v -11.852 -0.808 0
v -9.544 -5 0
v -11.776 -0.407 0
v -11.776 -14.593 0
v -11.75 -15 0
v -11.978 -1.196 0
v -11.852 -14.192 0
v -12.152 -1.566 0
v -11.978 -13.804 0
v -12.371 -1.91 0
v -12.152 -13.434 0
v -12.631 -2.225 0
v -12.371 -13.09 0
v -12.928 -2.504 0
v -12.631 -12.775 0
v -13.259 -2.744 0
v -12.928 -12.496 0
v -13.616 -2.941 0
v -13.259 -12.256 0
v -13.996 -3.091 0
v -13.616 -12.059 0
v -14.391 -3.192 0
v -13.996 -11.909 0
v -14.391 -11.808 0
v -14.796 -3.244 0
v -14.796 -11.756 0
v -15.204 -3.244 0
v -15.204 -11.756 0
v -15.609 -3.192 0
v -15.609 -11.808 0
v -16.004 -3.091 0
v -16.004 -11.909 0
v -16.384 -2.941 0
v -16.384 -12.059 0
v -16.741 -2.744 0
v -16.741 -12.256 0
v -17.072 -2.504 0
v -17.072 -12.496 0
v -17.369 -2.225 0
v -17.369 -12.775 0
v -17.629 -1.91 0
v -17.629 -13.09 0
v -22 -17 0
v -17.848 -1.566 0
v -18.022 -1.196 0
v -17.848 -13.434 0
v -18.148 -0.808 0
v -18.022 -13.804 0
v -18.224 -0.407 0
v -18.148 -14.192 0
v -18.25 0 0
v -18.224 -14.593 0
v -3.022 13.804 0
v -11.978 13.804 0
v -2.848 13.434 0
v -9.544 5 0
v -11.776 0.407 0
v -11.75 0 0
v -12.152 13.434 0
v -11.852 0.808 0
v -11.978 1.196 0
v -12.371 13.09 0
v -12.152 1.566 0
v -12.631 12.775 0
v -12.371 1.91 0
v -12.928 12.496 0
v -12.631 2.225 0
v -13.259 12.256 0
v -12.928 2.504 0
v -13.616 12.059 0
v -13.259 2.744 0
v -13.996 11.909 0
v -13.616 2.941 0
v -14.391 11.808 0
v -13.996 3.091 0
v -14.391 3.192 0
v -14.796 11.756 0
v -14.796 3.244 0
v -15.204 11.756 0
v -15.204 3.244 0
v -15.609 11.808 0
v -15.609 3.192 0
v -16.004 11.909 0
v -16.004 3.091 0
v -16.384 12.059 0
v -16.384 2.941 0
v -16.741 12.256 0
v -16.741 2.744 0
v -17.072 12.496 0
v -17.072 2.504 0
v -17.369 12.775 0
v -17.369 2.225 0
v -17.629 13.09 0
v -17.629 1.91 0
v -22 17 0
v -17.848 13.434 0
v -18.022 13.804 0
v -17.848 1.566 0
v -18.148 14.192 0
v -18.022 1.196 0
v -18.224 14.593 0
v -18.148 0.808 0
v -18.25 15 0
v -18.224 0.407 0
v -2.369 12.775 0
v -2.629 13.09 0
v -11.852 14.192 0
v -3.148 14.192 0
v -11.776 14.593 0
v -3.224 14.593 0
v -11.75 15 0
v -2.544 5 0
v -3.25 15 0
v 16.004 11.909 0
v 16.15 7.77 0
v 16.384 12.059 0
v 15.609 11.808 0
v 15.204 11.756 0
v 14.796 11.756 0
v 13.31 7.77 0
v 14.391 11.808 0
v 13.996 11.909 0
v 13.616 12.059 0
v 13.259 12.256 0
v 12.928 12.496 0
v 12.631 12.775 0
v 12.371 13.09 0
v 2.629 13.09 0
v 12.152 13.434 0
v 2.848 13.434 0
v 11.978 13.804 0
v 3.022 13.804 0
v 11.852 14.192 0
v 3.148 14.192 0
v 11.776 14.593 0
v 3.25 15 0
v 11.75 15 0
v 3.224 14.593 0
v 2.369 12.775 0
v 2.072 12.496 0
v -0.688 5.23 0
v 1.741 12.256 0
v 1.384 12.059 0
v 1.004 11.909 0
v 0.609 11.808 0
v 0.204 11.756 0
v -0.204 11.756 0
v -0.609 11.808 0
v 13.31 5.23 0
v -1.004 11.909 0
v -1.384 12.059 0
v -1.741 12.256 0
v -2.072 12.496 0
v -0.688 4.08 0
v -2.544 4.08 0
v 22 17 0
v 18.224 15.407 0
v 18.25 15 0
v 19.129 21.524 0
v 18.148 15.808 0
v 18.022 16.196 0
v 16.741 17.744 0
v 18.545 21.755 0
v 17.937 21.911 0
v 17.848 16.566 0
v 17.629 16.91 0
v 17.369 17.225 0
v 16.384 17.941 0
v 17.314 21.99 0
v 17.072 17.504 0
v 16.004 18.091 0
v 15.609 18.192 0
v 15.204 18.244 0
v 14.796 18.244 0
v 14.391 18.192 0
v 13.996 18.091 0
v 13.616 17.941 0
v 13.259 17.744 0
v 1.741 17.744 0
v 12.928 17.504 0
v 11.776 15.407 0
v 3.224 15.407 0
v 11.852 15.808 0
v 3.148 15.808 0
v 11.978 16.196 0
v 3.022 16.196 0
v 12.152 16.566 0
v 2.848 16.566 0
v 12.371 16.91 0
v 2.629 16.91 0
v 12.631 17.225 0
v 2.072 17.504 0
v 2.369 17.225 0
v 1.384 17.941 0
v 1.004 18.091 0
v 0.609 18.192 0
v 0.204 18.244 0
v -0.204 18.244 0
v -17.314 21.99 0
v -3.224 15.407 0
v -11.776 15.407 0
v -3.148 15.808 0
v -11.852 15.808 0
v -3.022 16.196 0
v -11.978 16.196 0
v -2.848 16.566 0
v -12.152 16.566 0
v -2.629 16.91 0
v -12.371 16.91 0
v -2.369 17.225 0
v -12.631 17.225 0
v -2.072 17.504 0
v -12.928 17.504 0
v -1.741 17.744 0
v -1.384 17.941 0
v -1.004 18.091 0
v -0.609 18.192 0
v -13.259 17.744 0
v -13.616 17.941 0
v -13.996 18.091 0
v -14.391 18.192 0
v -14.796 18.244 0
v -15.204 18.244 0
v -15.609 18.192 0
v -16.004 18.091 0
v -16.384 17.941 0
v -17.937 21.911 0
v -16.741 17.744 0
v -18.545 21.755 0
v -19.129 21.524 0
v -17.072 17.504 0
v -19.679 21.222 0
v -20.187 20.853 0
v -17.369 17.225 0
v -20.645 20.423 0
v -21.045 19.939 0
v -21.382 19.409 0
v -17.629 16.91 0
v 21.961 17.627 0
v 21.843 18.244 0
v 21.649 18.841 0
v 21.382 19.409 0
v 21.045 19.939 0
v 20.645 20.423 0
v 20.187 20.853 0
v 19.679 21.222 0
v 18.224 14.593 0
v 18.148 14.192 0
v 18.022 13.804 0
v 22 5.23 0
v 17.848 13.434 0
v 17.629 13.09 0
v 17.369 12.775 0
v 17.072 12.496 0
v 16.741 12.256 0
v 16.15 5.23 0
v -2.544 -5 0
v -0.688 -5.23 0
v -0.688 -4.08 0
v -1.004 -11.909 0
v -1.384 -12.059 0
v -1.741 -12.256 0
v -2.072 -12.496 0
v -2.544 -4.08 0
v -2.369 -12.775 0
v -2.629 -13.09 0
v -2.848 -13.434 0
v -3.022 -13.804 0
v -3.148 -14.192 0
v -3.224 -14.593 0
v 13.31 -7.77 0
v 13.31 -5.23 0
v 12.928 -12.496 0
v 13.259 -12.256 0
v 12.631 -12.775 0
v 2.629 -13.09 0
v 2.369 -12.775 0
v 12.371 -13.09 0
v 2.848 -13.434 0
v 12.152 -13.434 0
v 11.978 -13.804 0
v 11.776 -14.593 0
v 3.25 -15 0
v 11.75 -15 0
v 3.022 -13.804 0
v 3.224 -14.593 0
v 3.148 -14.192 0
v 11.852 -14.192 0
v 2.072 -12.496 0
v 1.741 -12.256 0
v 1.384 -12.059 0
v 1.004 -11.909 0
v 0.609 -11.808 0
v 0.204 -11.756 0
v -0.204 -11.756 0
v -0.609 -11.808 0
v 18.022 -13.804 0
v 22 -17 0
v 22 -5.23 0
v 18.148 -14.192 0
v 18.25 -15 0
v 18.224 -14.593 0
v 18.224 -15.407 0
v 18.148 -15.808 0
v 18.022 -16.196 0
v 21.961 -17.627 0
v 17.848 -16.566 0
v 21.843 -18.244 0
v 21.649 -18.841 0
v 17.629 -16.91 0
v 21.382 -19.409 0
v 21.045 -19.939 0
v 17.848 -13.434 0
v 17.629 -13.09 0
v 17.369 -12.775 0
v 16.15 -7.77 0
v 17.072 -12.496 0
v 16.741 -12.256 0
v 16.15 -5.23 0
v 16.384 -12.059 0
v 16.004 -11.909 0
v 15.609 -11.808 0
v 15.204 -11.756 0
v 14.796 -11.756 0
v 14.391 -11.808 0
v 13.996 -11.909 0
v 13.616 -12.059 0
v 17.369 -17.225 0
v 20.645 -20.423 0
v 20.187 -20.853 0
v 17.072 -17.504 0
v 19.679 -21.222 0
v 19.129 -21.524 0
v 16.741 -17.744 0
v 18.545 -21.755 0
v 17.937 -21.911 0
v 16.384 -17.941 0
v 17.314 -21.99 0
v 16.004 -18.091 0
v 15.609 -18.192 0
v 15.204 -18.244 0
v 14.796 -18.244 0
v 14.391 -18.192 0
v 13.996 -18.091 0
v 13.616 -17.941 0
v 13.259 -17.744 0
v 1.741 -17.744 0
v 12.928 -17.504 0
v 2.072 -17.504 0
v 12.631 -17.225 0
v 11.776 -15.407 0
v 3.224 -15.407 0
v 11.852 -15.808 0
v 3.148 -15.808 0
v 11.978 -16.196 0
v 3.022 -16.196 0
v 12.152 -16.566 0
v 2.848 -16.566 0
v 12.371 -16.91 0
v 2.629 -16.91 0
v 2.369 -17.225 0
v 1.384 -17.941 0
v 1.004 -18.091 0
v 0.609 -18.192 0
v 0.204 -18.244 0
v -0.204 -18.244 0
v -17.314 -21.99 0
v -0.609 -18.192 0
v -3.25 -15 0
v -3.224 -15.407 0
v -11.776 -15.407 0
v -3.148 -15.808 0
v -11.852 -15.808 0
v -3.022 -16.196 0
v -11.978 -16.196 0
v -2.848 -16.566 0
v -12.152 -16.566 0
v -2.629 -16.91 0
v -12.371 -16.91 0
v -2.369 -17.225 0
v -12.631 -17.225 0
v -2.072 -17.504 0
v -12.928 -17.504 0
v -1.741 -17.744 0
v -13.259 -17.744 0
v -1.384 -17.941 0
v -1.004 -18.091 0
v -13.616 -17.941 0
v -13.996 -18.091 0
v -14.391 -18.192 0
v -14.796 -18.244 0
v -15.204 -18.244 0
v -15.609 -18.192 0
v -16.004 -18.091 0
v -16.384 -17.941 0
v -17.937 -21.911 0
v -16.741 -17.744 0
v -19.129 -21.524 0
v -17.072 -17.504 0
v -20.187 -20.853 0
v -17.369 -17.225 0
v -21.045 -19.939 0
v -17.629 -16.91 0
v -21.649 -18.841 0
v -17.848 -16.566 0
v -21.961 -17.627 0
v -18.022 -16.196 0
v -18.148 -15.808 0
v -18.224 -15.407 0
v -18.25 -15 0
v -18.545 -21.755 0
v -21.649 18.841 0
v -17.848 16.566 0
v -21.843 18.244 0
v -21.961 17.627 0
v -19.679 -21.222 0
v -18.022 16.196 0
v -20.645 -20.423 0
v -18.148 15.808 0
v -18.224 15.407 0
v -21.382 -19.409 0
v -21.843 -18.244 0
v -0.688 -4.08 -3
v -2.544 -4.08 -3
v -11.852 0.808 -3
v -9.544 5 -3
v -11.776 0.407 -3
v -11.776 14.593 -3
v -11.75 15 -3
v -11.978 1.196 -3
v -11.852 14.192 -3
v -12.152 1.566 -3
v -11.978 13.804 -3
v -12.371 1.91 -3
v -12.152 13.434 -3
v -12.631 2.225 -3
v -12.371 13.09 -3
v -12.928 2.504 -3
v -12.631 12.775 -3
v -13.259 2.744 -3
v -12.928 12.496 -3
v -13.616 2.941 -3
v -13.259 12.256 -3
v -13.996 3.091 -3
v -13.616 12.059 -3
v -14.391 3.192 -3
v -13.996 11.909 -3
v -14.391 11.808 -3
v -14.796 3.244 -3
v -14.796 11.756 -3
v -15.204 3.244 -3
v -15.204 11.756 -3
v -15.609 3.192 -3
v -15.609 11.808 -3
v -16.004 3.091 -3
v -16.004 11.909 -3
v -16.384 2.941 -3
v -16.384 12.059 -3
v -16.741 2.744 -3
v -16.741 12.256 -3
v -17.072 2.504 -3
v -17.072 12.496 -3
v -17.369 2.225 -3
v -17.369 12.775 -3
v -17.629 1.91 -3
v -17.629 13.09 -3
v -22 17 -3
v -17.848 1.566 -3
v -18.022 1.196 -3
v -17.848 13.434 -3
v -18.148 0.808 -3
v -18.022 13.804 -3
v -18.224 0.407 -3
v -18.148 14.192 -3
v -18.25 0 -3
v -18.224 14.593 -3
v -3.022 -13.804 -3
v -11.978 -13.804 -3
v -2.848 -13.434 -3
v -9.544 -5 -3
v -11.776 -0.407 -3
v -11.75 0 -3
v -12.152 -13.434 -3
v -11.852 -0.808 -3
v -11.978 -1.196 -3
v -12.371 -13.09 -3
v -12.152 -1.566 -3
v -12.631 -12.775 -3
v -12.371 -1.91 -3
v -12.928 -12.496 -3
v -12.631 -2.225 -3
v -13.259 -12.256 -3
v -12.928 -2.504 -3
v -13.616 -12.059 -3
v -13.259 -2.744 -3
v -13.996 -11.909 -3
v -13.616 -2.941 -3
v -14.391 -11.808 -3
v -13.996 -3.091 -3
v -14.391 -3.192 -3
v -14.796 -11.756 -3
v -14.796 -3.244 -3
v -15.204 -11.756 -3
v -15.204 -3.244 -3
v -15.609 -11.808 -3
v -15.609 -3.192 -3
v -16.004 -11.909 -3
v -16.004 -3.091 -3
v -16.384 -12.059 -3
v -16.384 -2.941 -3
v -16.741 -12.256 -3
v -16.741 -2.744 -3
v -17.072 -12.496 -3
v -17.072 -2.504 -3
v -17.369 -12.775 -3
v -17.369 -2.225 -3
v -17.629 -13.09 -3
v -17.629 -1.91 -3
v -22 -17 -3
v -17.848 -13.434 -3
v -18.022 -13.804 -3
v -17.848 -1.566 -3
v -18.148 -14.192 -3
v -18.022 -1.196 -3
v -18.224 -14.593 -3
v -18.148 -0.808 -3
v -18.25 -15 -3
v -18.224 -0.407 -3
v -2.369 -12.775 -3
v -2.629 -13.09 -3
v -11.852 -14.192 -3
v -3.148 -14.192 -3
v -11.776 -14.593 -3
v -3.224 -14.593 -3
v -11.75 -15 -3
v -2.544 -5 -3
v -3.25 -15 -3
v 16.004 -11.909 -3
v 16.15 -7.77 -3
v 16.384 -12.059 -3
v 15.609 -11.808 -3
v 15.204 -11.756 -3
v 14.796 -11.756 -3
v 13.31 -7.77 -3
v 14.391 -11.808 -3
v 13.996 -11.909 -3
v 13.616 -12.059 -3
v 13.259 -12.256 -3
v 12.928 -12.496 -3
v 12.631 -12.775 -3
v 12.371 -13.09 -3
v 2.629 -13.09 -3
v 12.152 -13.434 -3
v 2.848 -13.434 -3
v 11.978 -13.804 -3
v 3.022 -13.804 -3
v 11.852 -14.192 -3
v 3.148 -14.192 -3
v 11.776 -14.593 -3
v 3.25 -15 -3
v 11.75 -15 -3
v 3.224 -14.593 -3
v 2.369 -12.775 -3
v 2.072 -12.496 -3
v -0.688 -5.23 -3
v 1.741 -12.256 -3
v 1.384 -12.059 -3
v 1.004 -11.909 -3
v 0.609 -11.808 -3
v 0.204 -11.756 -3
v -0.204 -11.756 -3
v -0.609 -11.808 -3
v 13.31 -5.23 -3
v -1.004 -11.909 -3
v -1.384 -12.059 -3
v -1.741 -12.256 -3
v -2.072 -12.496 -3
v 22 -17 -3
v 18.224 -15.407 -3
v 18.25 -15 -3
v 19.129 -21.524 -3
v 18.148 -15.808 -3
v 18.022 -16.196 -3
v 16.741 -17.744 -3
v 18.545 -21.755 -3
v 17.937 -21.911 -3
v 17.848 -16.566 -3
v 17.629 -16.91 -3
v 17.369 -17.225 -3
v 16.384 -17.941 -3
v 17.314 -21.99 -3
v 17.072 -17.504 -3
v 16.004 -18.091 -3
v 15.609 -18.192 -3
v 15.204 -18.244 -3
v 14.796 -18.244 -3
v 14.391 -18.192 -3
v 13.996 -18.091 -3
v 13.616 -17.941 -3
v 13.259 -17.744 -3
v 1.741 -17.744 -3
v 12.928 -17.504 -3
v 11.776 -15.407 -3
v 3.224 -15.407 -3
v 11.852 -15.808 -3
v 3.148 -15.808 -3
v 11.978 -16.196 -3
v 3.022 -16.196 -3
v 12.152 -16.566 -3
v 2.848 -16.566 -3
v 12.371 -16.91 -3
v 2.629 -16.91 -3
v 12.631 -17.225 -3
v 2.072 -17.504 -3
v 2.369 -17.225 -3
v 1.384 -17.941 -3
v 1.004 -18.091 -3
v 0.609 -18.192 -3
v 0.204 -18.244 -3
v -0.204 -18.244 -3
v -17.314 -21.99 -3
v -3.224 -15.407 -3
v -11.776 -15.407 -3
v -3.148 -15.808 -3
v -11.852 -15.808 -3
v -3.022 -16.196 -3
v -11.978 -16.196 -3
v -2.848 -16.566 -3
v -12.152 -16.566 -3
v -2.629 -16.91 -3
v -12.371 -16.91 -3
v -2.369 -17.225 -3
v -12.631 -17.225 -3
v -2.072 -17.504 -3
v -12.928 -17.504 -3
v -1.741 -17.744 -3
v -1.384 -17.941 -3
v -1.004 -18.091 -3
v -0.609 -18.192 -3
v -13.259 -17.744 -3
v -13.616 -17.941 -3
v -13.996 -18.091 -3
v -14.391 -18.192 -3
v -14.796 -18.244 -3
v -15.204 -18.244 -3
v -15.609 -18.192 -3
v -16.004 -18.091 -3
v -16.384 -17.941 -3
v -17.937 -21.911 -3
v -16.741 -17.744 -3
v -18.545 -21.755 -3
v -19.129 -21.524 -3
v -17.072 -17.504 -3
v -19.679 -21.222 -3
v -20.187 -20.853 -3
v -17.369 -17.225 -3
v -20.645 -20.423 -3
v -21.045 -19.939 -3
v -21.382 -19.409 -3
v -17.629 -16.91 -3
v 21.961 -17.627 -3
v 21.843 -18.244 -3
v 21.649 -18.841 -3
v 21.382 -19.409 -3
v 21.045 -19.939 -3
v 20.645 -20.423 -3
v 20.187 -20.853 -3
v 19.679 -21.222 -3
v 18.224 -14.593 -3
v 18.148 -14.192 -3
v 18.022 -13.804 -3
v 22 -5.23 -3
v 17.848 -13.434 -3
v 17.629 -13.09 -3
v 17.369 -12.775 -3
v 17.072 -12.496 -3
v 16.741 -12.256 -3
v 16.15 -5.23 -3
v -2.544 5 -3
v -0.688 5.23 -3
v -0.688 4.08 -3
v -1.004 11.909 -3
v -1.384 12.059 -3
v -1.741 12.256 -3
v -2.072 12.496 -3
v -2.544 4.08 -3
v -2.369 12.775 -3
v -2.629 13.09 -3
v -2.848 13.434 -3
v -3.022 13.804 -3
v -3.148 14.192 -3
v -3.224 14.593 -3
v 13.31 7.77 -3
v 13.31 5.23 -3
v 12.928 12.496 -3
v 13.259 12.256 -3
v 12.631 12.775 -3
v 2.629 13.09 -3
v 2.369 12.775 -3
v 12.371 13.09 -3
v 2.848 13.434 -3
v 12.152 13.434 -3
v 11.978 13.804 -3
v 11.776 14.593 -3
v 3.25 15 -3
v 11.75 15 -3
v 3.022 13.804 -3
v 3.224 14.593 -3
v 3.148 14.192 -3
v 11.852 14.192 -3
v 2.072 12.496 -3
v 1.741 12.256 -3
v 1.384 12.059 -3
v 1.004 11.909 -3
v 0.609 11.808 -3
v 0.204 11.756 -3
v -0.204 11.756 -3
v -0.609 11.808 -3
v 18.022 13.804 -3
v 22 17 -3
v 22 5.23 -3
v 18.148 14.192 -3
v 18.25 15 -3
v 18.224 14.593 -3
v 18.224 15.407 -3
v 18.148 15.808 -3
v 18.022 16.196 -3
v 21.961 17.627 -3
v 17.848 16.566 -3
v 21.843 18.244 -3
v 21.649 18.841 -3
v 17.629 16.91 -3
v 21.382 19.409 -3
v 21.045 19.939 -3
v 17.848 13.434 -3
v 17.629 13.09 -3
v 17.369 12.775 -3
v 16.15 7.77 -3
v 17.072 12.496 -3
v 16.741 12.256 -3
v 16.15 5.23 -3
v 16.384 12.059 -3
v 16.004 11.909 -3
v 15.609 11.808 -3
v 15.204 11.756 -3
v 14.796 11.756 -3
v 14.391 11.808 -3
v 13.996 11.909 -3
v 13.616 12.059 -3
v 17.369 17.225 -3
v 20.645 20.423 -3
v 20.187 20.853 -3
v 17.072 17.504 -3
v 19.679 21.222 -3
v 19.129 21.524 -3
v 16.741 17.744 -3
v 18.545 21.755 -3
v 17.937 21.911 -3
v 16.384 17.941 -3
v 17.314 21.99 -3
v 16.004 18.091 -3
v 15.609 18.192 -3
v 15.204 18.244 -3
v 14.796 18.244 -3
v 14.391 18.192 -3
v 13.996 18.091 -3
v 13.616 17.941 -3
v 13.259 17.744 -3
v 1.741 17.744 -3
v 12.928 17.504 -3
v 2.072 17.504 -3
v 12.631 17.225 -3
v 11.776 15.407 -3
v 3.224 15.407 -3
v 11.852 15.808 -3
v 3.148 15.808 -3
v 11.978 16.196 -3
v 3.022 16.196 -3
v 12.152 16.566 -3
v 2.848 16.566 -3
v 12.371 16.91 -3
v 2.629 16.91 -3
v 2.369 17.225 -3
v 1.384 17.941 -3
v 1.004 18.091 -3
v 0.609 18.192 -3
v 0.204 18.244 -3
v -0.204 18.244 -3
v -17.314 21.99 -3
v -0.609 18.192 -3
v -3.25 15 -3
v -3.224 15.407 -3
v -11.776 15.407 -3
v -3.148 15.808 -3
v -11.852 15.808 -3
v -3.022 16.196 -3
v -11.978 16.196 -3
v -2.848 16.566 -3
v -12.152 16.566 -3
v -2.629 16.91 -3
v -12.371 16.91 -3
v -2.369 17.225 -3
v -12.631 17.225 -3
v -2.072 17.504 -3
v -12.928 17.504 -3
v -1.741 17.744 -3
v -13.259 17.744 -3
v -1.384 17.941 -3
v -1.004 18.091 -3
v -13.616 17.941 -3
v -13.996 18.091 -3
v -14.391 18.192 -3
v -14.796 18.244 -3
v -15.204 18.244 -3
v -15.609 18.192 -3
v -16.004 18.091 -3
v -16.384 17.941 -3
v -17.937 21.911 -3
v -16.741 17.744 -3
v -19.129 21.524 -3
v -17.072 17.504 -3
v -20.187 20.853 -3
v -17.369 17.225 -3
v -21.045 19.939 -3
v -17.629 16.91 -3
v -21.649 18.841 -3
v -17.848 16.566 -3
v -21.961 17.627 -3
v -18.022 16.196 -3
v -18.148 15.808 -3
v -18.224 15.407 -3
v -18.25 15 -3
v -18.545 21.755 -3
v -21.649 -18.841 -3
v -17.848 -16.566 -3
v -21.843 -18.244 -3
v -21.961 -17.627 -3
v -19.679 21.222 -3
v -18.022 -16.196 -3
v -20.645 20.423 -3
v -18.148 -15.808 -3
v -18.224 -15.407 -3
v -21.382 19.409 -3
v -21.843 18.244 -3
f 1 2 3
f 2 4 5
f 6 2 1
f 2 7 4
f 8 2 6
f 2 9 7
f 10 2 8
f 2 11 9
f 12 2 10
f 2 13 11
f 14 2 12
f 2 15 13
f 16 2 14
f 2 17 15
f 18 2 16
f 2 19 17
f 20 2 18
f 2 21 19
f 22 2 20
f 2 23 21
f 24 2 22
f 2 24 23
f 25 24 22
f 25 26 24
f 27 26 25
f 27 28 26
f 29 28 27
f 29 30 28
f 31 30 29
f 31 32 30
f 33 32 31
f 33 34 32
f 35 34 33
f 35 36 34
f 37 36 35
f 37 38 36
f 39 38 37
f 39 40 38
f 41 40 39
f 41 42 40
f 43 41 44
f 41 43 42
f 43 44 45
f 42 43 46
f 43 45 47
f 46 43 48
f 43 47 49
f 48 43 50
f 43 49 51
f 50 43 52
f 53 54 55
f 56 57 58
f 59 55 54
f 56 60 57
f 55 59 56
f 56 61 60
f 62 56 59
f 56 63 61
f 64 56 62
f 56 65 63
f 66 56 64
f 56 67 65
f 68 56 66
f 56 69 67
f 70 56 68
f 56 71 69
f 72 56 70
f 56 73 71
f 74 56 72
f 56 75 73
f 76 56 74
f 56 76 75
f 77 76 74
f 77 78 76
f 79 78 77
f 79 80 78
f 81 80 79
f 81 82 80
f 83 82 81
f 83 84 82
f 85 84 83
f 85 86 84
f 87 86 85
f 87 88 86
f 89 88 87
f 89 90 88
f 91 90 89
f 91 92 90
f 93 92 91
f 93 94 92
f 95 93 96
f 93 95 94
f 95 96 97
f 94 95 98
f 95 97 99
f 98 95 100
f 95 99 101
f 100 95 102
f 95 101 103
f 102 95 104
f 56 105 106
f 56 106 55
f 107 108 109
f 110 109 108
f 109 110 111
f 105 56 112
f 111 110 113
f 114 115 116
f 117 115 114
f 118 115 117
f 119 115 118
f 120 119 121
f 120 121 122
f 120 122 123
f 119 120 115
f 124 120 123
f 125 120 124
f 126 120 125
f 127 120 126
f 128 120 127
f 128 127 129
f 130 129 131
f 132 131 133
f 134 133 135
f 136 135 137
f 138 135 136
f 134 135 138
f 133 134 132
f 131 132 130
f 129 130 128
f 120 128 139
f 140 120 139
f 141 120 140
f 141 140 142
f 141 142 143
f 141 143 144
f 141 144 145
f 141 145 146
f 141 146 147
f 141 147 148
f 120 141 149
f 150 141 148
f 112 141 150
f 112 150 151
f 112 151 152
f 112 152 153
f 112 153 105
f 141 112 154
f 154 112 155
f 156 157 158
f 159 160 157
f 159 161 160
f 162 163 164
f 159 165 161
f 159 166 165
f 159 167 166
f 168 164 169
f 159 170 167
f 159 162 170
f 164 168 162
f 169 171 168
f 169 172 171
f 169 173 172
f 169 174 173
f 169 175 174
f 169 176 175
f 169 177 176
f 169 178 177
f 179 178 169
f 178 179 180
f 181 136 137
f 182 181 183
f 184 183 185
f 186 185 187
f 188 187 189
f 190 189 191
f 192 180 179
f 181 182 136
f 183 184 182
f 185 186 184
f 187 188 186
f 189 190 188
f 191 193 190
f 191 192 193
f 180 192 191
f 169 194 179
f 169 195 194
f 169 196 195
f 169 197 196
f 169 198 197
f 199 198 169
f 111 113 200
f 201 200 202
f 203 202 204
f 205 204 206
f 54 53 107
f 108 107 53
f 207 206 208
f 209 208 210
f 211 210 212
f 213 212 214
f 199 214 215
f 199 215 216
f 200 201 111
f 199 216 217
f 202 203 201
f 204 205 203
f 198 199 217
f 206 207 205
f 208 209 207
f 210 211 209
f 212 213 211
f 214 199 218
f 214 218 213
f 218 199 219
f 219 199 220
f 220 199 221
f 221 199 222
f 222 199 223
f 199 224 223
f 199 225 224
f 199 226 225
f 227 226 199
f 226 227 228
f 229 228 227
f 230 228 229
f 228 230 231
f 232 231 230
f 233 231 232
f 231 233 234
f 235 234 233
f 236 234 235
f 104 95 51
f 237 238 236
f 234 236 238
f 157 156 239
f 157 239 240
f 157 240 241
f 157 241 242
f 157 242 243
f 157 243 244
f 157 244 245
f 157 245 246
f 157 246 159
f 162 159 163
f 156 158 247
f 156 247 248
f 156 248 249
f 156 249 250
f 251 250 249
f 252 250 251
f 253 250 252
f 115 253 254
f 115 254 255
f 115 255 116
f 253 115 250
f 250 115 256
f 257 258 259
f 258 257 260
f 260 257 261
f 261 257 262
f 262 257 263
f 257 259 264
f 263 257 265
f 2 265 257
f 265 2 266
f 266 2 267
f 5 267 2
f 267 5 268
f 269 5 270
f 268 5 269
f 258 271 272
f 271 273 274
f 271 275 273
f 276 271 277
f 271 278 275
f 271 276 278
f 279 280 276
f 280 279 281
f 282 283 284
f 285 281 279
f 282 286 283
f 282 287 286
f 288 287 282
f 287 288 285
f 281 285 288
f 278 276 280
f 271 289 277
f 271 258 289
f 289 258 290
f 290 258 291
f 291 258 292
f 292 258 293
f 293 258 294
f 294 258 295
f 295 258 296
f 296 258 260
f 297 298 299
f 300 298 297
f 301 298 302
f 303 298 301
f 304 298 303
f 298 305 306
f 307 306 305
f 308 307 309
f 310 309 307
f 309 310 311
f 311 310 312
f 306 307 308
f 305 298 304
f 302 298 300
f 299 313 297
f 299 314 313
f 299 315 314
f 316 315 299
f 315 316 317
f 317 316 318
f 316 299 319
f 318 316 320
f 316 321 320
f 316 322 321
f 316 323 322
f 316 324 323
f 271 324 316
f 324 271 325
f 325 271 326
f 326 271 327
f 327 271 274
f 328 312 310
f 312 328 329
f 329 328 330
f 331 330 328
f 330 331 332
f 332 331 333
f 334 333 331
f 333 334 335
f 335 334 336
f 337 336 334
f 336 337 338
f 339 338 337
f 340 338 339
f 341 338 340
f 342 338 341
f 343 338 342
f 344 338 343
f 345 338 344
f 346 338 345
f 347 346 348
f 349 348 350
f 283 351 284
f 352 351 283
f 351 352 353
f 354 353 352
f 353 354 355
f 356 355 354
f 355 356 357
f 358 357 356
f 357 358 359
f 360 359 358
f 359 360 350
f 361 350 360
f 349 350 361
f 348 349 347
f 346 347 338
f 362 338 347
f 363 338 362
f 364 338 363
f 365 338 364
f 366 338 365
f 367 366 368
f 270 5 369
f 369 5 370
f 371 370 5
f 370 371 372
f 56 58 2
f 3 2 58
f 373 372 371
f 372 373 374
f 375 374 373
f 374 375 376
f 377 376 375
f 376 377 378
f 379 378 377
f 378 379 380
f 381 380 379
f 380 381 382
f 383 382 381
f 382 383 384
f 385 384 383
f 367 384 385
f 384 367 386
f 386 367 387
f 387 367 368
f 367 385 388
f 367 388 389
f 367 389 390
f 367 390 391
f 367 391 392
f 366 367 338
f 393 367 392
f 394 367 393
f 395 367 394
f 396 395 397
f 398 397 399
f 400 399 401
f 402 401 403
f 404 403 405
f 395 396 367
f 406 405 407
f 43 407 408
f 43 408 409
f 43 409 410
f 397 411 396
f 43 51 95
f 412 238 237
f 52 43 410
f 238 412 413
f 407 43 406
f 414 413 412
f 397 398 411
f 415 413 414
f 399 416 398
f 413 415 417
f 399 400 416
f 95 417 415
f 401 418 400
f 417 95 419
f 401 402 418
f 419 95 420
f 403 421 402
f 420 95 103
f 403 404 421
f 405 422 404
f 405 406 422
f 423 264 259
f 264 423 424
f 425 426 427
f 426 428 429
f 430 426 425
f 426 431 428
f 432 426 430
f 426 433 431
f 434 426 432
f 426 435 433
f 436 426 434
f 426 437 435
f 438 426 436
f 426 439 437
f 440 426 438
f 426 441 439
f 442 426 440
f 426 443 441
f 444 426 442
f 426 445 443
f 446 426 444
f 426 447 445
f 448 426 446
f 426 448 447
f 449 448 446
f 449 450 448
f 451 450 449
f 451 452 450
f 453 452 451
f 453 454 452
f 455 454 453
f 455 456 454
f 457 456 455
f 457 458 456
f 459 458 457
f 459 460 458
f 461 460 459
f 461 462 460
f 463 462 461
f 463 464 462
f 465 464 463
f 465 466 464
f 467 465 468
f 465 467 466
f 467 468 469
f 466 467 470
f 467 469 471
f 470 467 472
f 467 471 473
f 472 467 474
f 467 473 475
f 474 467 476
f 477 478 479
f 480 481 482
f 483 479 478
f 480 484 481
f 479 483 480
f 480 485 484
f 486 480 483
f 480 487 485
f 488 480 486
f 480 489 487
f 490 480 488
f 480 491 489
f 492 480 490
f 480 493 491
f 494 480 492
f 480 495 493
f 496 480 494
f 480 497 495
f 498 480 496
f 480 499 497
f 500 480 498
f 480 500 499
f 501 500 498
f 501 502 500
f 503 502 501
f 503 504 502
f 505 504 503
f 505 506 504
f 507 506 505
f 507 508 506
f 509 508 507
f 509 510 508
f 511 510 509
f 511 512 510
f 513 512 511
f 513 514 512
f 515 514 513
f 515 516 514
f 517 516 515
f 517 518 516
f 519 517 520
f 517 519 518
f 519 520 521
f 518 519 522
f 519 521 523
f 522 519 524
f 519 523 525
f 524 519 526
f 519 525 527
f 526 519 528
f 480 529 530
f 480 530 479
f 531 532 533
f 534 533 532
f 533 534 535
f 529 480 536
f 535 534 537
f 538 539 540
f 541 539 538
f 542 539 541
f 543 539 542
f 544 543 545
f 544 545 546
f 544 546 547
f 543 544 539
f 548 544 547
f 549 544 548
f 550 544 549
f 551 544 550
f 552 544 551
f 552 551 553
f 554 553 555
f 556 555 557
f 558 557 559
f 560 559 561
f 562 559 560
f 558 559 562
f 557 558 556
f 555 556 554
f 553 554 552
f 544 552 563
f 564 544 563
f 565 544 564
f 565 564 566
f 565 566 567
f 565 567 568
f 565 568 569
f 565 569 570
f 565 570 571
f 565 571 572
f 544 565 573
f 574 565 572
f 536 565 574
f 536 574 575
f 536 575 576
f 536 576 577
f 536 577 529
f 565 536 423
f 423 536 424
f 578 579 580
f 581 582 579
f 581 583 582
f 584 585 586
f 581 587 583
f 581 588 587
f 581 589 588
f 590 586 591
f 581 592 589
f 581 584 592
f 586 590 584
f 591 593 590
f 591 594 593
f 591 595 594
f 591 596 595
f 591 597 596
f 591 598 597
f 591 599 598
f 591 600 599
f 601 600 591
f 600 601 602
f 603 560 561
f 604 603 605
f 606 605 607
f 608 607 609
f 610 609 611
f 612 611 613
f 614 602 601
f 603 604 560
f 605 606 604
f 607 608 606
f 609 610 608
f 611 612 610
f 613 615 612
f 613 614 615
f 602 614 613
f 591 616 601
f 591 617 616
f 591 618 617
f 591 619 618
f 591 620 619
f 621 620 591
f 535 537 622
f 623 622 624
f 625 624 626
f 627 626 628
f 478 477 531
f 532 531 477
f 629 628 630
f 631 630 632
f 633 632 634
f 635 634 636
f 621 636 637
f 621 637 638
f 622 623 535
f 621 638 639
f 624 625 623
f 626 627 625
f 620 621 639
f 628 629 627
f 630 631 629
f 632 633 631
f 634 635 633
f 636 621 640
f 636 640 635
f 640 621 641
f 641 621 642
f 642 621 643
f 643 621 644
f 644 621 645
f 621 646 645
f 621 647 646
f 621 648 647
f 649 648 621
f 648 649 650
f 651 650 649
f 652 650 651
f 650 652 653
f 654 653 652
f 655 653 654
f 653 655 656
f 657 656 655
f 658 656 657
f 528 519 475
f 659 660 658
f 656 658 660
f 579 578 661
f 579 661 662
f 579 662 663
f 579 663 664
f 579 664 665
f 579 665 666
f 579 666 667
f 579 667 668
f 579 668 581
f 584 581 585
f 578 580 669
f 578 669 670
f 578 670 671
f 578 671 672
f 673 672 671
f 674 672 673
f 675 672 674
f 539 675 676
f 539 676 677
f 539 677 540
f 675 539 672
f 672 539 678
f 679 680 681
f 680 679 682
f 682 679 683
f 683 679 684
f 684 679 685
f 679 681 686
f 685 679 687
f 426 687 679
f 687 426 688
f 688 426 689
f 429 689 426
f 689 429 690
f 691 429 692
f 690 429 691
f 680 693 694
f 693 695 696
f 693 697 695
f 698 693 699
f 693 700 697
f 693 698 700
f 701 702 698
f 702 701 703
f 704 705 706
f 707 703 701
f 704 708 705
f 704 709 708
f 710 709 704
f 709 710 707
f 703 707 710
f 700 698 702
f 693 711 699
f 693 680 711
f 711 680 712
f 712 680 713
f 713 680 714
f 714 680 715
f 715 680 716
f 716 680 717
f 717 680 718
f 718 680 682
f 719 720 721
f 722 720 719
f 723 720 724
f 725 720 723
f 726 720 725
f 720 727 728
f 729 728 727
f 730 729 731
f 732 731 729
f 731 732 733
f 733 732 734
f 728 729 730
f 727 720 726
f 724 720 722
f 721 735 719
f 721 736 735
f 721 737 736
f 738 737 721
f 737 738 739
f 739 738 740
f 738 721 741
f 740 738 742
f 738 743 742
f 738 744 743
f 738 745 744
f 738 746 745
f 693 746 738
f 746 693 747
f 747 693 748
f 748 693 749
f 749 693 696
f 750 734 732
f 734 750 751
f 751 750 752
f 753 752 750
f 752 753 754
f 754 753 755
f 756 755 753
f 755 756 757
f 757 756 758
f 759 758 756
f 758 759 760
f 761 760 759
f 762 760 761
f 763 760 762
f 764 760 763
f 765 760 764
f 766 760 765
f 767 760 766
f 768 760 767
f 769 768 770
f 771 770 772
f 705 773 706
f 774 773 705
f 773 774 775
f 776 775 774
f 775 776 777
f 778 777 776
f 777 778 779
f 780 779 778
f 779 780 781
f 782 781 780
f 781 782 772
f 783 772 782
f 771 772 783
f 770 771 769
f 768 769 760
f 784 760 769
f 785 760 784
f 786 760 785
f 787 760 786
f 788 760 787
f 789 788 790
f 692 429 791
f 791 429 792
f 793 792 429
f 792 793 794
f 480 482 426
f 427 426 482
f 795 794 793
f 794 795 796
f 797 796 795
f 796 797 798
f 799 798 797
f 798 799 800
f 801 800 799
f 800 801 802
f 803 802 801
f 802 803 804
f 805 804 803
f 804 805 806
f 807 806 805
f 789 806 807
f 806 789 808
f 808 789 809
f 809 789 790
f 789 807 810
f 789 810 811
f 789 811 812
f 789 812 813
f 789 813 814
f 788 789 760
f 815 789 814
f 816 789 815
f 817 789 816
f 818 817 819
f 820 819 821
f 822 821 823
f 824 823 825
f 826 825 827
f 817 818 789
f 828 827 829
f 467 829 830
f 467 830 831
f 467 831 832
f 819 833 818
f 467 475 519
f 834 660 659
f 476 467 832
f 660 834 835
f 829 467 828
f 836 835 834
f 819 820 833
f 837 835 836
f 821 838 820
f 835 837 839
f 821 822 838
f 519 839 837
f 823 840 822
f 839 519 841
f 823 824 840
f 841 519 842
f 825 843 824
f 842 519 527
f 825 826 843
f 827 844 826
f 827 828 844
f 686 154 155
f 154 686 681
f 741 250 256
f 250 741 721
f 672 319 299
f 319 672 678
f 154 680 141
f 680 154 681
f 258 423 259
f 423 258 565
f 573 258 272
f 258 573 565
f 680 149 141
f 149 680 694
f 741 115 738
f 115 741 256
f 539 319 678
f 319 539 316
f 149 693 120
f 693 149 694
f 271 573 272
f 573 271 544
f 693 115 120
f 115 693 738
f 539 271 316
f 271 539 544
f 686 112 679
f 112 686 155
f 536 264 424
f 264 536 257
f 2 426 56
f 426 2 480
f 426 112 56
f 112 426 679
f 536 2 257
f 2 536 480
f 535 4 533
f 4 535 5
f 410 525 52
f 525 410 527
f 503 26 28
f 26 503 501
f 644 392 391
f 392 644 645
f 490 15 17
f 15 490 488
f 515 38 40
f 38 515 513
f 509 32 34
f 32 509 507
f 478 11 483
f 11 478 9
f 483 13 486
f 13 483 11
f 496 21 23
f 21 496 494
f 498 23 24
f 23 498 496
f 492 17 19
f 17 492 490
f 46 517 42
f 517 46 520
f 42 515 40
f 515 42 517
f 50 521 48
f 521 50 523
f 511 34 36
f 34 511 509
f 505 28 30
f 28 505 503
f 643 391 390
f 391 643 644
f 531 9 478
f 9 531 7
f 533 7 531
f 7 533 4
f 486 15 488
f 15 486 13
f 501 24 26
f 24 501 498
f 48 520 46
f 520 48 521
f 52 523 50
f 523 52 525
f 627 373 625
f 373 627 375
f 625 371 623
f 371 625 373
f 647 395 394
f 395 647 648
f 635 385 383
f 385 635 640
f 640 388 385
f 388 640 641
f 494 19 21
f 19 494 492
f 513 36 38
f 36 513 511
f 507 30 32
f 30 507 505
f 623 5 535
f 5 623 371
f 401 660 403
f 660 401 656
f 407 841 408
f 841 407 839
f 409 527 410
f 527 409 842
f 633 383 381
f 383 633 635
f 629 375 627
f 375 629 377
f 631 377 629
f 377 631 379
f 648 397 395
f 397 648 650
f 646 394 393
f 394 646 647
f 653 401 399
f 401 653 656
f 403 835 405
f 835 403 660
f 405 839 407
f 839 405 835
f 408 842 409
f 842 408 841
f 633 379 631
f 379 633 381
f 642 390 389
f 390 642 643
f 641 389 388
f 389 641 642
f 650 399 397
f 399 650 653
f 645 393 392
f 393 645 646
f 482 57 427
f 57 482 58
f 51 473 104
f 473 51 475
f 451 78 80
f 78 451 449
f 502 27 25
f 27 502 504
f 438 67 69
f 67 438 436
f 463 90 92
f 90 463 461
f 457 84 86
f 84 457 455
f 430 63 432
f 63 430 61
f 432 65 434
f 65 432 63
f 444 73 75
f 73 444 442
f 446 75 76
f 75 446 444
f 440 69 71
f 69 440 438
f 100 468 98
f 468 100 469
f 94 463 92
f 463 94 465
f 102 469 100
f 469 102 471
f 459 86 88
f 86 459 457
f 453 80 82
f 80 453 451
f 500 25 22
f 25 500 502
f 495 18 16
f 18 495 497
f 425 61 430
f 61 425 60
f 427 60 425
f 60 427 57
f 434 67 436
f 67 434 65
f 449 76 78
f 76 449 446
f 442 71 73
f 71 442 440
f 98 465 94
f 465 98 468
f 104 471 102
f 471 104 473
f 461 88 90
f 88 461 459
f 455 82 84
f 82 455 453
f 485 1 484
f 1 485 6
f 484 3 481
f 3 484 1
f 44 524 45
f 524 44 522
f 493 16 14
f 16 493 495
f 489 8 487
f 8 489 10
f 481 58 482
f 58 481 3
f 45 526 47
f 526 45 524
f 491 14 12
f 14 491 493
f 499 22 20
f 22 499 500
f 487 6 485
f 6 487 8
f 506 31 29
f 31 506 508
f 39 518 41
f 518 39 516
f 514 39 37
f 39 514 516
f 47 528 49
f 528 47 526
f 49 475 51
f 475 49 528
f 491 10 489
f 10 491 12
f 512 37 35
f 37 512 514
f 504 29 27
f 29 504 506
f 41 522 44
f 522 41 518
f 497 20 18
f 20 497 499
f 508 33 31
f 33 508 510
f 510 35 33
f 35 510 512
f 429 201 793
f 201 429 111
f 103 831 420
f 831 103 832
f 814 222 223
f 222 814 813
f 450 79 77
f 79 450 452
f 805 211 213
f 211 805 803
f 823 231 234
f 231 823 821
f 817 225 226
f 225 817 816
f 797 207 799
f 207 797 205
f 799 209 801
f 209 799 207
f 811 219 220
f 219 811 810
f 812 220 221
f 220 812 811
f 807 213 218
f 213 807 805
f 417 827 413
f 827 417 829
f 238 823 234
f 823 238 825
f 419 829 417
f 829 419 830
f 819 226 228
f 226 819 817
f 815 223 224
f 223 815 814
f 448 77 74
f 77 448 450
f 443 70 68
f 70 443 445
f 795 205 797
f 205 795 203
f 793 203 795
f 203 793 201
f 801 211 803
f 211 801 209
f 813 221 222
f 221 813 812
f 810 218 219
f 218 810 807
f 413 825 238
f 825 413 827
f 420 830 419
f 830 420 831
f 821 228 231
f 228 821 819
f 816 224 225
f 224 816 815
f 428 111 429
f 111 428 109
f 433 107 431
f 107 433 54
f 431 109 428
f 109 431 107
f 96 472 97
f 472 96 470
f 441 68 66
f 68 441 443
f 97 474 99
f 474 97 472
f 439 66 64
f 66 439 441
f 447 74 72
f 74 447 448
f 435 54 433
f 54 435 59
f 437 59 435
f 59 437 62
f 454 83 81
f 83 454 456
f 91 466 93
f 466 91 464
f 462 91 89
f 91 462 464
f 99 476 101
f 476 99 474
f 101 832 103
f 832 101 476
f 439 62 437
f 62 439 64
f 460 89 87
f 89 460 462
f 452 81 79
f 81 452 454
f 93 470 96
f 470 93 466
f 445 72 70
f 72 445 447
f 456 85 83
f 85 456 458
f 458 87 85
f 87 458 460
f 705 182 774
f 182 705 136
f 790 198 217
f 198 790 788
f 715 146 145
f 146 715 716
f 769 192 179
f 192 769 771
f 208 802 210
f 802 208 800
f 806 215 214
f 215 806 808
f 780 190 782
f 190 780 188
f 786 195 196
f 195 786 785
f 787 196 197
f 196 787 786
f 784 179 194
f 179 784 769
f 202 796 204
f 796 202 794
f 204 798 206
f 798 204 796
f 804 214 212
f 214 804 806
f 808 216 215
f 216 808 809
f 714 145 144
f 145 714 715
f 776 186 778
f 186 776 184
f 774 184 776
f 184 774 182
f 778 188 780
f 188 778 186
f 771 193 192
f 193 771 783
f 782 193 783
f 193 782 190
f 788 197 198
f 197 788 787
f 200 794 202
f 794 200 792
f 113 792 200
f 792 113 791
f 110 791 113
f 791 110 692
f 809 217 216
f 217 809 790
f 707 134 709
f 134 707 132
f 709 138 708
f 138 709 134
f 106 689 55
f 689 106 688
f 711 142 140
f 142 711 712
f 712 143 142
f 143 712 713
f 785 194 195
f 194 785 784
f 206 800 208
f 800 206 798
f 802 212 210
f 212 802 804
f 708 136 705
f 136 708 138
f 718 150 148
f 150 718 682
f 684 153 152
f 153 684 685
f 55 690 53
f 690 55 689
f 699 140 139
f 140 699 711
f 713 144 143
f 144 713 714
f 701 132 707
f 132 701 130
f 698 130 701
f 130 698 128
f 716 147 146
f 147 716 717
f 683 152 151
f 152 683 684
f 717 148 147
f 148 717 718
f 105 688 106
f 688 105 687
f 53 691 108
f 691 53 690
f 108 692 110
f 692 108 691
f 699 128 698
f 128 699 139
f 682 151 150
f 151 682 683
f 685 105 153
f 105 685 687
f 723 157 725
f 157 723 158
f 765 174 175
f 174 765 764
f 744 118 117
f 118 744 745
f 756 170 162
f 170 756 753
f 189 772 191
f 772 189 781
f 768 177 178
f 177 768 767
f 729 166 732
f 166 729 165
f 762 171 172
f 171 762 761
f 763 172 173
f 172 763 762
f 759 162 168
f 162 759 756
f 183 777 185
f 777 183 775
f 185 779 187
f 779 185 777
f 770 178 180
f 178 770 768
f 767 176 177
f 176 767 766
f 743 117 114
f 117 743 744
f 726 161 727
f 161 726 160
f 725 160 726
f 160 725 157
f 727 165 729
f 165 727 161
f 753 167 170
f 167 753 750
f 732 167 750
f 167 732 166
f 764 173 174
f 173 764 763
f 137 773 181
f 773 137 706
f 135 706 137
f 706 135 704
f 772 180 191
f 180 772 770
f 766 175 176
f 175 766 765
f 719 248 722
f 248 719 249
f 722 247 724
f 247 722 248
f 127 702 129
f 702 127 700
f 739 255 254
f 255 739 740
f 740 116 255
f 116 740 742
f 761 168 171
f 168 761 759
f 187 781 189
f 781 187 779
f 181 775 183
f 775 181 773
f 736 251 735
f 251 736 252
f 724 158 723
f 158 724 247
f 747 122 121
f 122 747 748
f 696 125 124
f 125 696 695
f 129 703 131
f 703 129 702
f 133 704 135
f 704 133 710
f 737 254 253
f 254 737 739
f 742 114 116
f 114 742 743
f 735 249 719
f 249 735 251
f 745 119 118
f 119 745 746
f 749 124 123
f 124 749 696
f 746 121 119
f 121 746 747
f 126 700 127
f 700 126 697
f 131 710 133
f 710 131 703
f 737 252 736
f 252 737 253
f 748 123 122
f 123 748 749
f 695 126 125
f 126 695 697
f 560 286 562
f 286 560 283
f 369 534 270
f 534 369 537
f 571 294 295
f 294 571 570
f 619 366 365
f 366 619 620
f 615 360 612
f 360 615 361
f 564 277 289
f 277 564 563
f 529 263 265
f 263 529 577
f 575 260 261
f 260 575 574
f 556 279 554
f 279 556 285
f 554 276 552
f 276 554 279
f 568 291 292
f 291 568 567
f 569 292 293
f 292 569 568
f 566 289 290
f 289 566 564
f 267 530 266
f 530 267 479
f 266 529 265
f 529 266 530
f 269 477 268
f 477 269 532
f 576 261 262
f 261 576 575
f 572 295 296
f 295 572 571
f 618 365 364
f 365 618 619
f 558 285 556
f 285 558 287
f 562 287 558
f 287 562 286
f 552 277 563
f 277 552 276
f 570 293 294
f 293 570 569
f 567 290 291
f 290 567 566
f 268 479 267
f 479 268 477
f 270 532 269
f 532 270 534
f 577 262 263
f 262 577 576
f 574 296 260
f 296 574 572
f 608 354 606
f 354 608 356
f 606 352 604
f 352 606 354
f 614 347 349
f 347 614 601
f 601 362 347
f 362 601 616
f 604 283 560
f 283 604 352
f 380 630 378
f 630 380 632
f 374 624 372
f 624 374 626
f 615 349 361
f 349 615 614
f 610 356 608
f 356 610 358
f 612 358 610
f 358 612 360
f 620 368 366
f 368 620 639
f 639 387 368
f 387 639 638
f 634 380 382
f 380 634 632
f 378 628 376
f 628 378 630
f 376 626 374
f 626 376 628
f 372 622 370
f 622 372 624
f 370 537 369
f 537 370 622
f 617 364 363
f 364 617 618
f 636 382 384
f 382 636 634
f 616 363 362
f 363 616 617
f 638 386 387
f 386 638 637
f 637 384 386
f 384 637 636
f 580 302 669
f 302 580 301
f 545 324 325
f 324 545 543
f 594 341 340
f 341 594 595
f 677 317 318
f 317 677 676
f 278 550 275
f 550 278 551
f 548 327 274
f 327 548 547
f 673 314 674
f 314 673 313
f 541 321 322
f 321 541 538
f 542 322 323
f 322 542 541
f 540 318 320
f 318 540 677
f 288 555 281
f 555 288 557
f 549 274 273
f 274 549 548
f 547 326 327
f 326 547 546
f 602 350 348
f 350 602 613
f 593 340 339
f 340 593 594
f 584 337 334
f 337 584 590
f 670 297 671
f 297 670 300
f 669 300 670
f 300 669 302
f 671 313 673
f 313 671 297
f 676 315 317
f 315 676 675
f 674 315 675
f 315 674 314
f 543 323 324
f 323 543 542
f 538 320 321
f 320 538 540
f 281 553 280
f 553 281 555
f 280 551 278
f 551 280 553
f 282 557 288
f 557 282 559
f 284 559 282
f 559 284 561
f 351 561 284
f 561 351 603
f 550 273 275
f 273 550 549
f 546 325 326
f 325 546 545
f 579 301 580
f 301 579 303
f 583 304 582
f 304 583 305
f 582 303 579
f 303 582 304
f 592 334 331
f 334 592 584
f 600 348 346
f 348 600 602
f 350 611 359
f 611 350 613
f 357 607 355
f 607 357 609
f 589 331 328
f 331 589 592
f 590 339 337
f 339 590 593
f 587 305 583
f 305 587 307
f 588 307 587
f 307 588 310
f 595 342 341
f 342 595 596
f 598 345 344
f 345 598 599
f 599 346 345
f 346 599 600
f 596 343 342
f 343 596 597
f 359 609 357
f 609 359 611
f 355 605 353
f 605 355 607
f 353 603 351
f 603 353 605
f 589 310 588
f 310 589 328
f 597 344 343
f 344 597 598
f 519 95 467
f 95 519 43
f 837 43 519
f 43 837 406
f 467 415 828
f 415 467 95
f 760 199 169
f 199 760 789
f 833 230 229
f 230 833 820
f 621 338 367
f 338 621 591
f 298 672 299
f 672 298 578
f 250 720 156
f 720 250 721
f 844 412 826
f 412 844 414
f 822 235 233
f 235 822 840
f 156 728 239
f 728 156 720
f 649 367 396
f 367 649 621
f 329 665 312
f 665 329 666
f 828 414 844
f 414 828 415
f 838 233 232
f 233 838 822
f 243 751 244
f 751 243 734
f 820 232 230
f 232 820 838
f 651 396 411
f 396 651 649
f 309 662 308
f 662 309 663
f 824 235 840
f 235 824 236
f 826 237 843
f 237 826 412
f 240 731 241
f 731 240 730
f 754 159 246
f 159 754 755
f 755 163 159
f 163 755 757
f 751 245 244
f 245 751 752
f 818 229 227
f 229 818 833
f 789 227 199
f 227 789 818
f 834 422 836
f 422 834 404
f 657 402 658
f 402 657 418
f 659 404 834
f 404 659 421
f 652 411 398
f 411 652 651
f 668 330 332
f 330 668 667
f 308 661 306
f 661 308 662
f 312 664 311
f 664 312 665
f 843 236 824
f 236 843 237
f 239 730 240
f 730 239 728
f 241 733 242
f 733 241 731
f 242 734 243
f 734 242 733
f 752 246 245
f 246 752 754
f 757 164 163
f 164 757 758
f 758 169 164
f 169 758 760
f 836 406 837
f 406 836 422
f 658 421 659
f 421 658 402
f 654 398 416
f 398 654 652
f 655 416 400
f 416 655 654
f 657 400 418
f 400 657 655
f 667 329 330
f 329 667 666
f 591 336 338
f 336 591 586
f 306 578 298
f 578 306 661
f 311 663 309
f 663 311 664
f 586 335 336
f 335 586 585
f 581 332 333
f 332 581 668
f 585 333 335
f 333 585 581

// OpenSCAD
$fn = 50;


difference() {
	union() {
		*color(alpha = 1.0000000000, c = "gray") {
			translate(v = [0, 14, -3]) {
				linear_extrude(height = 3) {
					text(font = "Arial:style=Bold", halign = "center", size = 4.5000000000, text = "COMMENT description oobb_plate_shape_positive_type_3_depth_0_0_-3_pos_motor_stepper_extra_3_thickness_3_width_3_height_0_0_-3_pos_plate", valign = "center");
				}
			}
		}
		translate(v = [0, 0, -3]) {
			hull() {
				translate(v = [-17.0000000000, 17.0000000000, 0]) {
					cylinder(h = 3, r = 5);
				}
				translate(v = [17.0000000000, 17.0000000000, 0]) {
					cylinder(h = 3, r = 5);
				}
				translate(v = [-17.0000000000, -17.0000000000, 0]) {
					cylinder(h = 3, r = 5);
				}
				translate(v = [17.0000000000, -17.0000000000, 0]) {
					cylinder(h = 3, r = 5);
				}
			}
		}
		*color(alpha = 1.0000000000, c = "gray") {
			translate(v = [0, 14, -3]) {
				linear_extrude(height = 3) {
					text(font = "Arial:style=Bold", halign = "center", size = 4.5000000000, text = "COMMENT description oobb_holes_shape_p_type_0_0_-3_pos_motor_stepper_extra_3_thickness_3_width_3_height_0_0_-3_pos_plate_'left'_'right'_'top'_hole_sides_'left'_'right'_'top'_holes_true_both_holes", valign = "center");
				}
			}
		}
		*color(alpha = 1.0000000000, c = "gray") {
			translate(v = [0, 14, -3]) {
				rotate(a = [0, 0, 180]) {
					linear_extrude(height = 3) {
						text(font = "Arial:style=Bold", halign = "center", size = 4.5000000000, text = "COMMENT description oobb_wire_motor_stepper_shape_0_0_-3_pos_motor_stepper_extra_3_thickness_3_width_3_height_0_0_-3_pos_plate_0_0_180_rot", valign = "center");
					}
				}
			}
		}
	}
	union() {
		translate(v = [22.5000000000, 0, -3]) {
			rotate(a = [0, 0, 180]) {
				difference() {
					union() {
						translate(v = [23.0670000000, -4.0800000000, 0]) {
							cube(size = [5, 8.1600000000, 3]);
						}
						translate(v = [0.2040000000, -5.2300000000, 0]) {
							cube(size = [6.3000000000, 10.4600000000, 3]);
						}
						translate(v = [8.8880000000, -5.2300000000, 0]) {
							cube(size = [14.3000000000, 10.4600000000, 3]);
						}
						translate(v = [6.3500000000, -7.7700000000, 0]) {
							cube(size = [2.8400000000, 15.5400000000, 3]);
						}
						translate(v = [25.0440000000, -5.0000000000, 0]) {
							cube(size = [7, 10, 3]);
						}
					}
					union();
				}
			}
		}
		translate(v = [-15.0000000000, -15.0000000000, -50.0000000000]) {
			cylinder(h = 100, r = 3.2500000000);
		}
		translate(v = [-15.0000000000, 0.0000000000, -50.0000000000]) {
			cylinder(h = 100, r = 3.2500000000);
		}
		translate(v = [-15.0000000000, 15.0000000000, -50.0000000000]) {
			cylinder(h = 100, r = 3.2500000000);
		}
		translate(v = [-15.0000000000, 15.0000000000, -50.0000000000]) {
			cylinder(h = 100, r = 3.2500000000);
		}
		translate(v = [0.0000000000, 15.0000000000, -50.0000000000]) {
			cylinder(h = 100, r = 3.2500000000);
		}
		translate(v = [15.0000000000, 15.0000000000, -50.0000000000]) {
			cylinder(h = 100, r = 3.2500000000);
		}
		translate(v = [-15.0000000000, -15.0000000000, -50.0000000000]) {
			cylinder(h = 100, r = 3.2500000000);
		}
		translate(v = [0.0000000000, -15.0000000000, -50.0000000000]) {
			cylinder(h = 100, r = 3.2500000000);
		}
		translate(v = [15.0000000000, -15.0000000000, -50.0000000000]) {
			cylinder(h = 100, r = 3.2500000000);
		}
	}
}
